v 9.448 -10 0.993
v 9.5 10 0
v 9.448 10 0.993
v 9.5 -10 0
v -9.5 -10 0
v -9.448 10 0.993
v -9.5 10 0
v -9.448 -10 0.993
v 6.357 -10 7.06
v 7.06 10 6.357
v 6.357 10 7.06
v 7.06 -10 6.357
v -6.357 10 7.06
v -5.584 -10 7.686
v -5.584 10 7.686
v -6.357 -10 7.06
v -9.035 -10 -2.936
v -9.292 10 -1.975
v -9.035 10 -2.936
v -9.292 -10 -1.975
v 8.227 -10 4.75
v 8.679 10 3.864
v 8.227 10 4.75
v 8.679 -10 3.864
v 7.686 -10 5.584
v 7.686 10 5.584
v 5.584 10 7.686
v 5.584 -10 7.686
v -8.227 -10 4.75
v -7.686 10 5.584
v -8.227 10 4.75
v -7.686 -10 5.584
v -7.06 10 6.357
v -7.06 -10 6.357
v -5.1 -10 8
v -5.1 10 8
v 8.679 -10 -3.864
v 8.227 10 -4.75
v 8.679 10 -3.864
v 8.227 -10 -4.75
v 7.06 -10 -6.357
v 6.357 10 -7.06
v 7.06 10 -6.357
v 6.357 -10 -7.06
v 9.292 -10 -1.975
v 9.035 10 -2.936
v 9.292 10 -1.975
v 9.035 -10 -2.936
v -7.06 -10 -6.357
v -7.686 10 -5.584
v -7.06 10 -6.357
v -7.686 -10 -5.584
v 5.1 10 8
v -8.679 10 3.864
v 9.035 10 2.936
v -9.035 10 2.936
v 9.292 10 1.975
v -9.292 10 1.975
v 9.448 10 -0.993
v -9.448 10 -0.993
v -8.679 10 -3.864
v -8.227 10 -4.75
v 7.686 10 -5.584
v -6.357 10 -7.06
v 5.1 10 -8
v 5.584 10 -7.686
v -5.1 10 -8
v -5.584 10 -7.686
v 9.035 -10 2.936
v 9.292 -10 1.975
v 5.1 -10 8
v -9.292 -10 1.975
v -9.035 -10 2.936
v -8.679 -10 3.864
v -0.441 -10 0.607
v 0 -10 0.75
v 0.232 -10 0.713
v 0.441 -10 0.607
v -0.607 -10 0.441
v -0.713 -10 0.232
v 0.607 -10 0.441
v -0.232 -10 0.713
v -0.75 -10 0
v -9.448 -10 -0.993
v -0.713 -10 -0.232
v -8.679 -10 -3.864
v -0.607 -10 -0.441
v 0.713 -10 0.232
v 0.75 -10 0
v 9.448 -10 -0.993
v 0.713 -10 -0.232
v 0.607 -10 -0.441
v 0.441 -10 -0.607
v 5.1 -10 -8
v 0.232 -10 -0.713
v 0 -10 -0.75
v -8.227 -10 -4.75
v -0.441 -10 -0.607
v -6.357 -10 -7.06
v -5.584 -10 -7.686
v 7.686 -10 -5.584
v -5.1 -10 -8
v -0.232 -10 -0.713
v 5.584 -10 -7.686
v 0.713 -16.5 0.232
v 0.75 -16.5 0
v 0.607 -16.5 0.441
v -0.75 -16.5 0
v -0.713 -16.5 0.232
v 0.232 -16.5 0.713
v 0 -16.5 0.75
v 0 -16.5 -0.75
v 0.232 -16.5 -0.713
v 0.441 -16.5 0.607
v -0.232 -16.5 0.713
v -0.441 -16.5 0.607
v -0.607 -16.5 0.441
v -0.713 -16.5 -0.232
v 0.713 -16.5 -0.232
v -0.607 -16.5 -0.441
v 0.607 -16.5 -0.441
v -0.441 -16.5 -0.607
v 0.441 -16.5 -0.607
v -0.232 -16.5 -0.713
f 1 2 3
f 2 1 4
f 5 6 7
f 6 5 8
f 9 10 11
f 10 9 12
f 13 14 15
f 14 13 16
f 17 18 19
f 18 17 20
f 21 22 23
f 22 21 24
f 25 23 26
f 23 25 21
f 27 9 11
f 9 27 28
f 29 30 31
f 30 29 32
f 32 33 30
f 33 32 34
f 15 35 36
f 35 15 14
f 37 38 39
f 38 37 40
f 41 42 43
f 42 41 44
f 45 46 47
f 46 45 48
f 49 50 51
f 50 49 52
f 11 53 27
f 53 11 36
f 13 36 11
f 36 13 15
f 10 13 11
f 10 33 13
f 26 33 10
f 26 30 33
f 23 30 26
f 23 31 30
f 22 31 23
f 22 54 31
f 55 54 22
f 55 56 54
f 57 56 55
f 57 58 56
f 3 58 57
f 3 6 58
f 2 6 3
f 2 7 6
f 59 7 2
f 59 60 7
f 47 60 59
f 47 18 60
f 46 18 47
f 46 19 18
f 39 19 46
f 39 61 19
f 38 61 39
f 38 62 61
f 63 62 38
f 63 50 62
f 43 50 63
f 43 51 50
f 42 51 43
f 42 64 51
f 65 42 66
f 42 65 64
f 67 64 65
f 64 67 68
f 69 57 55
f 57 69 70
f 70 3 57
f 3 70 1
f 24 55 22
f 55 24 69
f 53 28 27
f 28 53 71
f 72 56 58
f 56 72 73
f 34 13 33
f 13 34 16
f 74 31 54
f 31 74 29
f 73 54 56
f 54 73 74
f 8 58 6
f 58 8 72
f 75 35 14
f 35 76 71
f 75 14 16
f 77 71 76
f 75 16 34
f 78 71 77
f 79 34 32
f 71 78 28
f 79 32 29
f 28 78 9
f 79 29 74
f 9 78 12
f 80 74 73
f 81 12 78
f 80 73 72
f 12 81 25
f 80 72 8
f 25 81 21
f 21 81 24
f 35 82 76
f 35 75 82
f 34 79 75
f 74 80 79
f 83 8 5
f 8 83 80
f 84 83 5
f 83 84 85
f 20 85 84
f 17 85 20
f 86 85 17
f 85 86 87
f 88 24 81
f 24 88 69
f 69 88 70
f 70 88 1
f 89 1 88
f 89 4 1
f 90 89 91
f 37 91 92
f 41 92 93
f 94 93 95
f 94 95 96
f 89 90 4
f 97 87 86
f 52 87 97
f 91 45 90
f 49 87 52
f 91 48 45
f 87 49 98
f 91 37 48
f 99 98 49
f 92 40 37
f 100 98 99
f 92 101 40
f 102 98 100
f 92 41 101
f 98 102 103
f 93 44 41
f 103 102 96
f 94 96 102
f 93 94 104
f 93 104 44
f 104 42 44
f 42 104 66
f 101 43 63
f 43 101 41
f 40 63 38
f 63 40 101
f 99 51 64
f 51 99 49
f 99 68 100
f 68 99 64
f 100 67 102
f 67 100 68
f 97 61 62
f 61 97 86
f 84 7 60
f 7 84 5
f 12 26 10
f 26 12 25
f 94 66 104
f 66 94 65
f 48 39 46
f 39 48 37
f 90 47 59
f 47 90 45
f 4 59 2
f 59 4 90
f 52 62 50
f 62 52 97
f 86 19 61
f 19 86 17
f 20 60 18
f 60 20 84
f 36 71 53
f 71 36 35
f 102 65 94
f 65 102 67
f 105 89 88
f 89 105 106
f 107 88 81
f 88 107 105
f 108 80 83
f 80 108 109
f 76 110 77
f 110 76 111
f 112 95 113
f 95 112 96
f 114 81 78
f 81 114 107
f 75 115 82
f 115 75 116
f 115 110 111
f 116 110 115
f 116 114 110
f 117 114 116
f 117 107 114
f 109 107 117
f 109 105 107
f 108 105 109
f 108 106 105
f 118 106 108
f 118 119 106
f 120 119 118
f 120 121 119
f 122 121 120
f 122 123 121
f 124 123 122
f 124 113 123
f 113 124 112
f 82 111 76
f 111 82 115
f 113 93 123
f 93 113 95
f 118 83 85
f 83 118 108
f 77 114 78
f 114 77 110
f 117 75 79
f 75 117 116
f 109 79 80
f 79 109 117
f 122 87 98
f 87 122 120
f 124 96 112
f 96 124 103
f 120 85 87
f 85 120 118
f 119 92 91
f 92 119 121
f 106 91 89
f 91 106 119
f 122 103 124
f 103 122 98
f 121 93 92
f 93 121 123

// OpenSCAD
// Mini Motor DC 3V - 6V 130

show_motor = true;
show_gehause = false;

if (show_motor) {
    motor();
}

if (show_gehause) {
    gehause();
}


// =========================
module motor() {
    rotate([90,0,0])
    difference() {
    
        cylinder(d=19, h=20, center=true, $fn=60);
        translate([0,5+8,0])
        cube([20,10,50], center=true);
        translate([0,-5-8,0])
        cube([20,10,50], center=true);
    }
        
    rotate([90,0,0])
    translate([0,0,13])
    cylinder(d=1.5, h=7, center=true, $fn=20);
}

module gehause() {
  color("lightgreen") {
    
    difference() {
        // Gehäuse Rumpf
        union() {
            cube([25,15,25], center=true);
            rotate([90,0,0])
            translate([0,-5,3])
            translate([0,7.5,-11.5])
            cube([50,30,2], center=true);
        }
        // mini-Motor Loch
        scale([1.1,1.05,1.05]) motor();

        // Motorbefestigungslöcher
        rotate([0,90,0])
        translate([0,0,0])
        cylinder(d=3, h=50, center= true, $fn=20);
        
        // Fan-Befestigungslöcher
        rotate([90,0,0])
        union() {
            translate([10,10,0])
            cylinder(d=3, h=50, center= true, $fn=20);
            translate([-10,10,0])
            cylinder(d=3, h=50, center= true, $fn=20);
            translate([10,-10,0])
            cylinder(d=3, h=50, center= true, $fn=20);
            translate([-10,-10,0])
            cylinder(d=3, h=50, center= true, $fn=20);
        }
        //Gehäusebefestigungslöcher
        rotate([90,0,0])
        translate([0,-5,3])
        union() {
            translate([20,-2,-10])
            cylinder(d=3, h=20, center=true, $fn = 20);
            translate([-20,-2,-10])
            cylinder(d=3, h=20, center=true, $fn = 20);
            translate([20,17.5,-10])
            cylinder(d=3, h=20, center=true, $fn = 20);
            translate([-20,17.5,-10])
            cylinder(d=3, h=20, center=true, $fn = 20);
        }
    }
  }
}
